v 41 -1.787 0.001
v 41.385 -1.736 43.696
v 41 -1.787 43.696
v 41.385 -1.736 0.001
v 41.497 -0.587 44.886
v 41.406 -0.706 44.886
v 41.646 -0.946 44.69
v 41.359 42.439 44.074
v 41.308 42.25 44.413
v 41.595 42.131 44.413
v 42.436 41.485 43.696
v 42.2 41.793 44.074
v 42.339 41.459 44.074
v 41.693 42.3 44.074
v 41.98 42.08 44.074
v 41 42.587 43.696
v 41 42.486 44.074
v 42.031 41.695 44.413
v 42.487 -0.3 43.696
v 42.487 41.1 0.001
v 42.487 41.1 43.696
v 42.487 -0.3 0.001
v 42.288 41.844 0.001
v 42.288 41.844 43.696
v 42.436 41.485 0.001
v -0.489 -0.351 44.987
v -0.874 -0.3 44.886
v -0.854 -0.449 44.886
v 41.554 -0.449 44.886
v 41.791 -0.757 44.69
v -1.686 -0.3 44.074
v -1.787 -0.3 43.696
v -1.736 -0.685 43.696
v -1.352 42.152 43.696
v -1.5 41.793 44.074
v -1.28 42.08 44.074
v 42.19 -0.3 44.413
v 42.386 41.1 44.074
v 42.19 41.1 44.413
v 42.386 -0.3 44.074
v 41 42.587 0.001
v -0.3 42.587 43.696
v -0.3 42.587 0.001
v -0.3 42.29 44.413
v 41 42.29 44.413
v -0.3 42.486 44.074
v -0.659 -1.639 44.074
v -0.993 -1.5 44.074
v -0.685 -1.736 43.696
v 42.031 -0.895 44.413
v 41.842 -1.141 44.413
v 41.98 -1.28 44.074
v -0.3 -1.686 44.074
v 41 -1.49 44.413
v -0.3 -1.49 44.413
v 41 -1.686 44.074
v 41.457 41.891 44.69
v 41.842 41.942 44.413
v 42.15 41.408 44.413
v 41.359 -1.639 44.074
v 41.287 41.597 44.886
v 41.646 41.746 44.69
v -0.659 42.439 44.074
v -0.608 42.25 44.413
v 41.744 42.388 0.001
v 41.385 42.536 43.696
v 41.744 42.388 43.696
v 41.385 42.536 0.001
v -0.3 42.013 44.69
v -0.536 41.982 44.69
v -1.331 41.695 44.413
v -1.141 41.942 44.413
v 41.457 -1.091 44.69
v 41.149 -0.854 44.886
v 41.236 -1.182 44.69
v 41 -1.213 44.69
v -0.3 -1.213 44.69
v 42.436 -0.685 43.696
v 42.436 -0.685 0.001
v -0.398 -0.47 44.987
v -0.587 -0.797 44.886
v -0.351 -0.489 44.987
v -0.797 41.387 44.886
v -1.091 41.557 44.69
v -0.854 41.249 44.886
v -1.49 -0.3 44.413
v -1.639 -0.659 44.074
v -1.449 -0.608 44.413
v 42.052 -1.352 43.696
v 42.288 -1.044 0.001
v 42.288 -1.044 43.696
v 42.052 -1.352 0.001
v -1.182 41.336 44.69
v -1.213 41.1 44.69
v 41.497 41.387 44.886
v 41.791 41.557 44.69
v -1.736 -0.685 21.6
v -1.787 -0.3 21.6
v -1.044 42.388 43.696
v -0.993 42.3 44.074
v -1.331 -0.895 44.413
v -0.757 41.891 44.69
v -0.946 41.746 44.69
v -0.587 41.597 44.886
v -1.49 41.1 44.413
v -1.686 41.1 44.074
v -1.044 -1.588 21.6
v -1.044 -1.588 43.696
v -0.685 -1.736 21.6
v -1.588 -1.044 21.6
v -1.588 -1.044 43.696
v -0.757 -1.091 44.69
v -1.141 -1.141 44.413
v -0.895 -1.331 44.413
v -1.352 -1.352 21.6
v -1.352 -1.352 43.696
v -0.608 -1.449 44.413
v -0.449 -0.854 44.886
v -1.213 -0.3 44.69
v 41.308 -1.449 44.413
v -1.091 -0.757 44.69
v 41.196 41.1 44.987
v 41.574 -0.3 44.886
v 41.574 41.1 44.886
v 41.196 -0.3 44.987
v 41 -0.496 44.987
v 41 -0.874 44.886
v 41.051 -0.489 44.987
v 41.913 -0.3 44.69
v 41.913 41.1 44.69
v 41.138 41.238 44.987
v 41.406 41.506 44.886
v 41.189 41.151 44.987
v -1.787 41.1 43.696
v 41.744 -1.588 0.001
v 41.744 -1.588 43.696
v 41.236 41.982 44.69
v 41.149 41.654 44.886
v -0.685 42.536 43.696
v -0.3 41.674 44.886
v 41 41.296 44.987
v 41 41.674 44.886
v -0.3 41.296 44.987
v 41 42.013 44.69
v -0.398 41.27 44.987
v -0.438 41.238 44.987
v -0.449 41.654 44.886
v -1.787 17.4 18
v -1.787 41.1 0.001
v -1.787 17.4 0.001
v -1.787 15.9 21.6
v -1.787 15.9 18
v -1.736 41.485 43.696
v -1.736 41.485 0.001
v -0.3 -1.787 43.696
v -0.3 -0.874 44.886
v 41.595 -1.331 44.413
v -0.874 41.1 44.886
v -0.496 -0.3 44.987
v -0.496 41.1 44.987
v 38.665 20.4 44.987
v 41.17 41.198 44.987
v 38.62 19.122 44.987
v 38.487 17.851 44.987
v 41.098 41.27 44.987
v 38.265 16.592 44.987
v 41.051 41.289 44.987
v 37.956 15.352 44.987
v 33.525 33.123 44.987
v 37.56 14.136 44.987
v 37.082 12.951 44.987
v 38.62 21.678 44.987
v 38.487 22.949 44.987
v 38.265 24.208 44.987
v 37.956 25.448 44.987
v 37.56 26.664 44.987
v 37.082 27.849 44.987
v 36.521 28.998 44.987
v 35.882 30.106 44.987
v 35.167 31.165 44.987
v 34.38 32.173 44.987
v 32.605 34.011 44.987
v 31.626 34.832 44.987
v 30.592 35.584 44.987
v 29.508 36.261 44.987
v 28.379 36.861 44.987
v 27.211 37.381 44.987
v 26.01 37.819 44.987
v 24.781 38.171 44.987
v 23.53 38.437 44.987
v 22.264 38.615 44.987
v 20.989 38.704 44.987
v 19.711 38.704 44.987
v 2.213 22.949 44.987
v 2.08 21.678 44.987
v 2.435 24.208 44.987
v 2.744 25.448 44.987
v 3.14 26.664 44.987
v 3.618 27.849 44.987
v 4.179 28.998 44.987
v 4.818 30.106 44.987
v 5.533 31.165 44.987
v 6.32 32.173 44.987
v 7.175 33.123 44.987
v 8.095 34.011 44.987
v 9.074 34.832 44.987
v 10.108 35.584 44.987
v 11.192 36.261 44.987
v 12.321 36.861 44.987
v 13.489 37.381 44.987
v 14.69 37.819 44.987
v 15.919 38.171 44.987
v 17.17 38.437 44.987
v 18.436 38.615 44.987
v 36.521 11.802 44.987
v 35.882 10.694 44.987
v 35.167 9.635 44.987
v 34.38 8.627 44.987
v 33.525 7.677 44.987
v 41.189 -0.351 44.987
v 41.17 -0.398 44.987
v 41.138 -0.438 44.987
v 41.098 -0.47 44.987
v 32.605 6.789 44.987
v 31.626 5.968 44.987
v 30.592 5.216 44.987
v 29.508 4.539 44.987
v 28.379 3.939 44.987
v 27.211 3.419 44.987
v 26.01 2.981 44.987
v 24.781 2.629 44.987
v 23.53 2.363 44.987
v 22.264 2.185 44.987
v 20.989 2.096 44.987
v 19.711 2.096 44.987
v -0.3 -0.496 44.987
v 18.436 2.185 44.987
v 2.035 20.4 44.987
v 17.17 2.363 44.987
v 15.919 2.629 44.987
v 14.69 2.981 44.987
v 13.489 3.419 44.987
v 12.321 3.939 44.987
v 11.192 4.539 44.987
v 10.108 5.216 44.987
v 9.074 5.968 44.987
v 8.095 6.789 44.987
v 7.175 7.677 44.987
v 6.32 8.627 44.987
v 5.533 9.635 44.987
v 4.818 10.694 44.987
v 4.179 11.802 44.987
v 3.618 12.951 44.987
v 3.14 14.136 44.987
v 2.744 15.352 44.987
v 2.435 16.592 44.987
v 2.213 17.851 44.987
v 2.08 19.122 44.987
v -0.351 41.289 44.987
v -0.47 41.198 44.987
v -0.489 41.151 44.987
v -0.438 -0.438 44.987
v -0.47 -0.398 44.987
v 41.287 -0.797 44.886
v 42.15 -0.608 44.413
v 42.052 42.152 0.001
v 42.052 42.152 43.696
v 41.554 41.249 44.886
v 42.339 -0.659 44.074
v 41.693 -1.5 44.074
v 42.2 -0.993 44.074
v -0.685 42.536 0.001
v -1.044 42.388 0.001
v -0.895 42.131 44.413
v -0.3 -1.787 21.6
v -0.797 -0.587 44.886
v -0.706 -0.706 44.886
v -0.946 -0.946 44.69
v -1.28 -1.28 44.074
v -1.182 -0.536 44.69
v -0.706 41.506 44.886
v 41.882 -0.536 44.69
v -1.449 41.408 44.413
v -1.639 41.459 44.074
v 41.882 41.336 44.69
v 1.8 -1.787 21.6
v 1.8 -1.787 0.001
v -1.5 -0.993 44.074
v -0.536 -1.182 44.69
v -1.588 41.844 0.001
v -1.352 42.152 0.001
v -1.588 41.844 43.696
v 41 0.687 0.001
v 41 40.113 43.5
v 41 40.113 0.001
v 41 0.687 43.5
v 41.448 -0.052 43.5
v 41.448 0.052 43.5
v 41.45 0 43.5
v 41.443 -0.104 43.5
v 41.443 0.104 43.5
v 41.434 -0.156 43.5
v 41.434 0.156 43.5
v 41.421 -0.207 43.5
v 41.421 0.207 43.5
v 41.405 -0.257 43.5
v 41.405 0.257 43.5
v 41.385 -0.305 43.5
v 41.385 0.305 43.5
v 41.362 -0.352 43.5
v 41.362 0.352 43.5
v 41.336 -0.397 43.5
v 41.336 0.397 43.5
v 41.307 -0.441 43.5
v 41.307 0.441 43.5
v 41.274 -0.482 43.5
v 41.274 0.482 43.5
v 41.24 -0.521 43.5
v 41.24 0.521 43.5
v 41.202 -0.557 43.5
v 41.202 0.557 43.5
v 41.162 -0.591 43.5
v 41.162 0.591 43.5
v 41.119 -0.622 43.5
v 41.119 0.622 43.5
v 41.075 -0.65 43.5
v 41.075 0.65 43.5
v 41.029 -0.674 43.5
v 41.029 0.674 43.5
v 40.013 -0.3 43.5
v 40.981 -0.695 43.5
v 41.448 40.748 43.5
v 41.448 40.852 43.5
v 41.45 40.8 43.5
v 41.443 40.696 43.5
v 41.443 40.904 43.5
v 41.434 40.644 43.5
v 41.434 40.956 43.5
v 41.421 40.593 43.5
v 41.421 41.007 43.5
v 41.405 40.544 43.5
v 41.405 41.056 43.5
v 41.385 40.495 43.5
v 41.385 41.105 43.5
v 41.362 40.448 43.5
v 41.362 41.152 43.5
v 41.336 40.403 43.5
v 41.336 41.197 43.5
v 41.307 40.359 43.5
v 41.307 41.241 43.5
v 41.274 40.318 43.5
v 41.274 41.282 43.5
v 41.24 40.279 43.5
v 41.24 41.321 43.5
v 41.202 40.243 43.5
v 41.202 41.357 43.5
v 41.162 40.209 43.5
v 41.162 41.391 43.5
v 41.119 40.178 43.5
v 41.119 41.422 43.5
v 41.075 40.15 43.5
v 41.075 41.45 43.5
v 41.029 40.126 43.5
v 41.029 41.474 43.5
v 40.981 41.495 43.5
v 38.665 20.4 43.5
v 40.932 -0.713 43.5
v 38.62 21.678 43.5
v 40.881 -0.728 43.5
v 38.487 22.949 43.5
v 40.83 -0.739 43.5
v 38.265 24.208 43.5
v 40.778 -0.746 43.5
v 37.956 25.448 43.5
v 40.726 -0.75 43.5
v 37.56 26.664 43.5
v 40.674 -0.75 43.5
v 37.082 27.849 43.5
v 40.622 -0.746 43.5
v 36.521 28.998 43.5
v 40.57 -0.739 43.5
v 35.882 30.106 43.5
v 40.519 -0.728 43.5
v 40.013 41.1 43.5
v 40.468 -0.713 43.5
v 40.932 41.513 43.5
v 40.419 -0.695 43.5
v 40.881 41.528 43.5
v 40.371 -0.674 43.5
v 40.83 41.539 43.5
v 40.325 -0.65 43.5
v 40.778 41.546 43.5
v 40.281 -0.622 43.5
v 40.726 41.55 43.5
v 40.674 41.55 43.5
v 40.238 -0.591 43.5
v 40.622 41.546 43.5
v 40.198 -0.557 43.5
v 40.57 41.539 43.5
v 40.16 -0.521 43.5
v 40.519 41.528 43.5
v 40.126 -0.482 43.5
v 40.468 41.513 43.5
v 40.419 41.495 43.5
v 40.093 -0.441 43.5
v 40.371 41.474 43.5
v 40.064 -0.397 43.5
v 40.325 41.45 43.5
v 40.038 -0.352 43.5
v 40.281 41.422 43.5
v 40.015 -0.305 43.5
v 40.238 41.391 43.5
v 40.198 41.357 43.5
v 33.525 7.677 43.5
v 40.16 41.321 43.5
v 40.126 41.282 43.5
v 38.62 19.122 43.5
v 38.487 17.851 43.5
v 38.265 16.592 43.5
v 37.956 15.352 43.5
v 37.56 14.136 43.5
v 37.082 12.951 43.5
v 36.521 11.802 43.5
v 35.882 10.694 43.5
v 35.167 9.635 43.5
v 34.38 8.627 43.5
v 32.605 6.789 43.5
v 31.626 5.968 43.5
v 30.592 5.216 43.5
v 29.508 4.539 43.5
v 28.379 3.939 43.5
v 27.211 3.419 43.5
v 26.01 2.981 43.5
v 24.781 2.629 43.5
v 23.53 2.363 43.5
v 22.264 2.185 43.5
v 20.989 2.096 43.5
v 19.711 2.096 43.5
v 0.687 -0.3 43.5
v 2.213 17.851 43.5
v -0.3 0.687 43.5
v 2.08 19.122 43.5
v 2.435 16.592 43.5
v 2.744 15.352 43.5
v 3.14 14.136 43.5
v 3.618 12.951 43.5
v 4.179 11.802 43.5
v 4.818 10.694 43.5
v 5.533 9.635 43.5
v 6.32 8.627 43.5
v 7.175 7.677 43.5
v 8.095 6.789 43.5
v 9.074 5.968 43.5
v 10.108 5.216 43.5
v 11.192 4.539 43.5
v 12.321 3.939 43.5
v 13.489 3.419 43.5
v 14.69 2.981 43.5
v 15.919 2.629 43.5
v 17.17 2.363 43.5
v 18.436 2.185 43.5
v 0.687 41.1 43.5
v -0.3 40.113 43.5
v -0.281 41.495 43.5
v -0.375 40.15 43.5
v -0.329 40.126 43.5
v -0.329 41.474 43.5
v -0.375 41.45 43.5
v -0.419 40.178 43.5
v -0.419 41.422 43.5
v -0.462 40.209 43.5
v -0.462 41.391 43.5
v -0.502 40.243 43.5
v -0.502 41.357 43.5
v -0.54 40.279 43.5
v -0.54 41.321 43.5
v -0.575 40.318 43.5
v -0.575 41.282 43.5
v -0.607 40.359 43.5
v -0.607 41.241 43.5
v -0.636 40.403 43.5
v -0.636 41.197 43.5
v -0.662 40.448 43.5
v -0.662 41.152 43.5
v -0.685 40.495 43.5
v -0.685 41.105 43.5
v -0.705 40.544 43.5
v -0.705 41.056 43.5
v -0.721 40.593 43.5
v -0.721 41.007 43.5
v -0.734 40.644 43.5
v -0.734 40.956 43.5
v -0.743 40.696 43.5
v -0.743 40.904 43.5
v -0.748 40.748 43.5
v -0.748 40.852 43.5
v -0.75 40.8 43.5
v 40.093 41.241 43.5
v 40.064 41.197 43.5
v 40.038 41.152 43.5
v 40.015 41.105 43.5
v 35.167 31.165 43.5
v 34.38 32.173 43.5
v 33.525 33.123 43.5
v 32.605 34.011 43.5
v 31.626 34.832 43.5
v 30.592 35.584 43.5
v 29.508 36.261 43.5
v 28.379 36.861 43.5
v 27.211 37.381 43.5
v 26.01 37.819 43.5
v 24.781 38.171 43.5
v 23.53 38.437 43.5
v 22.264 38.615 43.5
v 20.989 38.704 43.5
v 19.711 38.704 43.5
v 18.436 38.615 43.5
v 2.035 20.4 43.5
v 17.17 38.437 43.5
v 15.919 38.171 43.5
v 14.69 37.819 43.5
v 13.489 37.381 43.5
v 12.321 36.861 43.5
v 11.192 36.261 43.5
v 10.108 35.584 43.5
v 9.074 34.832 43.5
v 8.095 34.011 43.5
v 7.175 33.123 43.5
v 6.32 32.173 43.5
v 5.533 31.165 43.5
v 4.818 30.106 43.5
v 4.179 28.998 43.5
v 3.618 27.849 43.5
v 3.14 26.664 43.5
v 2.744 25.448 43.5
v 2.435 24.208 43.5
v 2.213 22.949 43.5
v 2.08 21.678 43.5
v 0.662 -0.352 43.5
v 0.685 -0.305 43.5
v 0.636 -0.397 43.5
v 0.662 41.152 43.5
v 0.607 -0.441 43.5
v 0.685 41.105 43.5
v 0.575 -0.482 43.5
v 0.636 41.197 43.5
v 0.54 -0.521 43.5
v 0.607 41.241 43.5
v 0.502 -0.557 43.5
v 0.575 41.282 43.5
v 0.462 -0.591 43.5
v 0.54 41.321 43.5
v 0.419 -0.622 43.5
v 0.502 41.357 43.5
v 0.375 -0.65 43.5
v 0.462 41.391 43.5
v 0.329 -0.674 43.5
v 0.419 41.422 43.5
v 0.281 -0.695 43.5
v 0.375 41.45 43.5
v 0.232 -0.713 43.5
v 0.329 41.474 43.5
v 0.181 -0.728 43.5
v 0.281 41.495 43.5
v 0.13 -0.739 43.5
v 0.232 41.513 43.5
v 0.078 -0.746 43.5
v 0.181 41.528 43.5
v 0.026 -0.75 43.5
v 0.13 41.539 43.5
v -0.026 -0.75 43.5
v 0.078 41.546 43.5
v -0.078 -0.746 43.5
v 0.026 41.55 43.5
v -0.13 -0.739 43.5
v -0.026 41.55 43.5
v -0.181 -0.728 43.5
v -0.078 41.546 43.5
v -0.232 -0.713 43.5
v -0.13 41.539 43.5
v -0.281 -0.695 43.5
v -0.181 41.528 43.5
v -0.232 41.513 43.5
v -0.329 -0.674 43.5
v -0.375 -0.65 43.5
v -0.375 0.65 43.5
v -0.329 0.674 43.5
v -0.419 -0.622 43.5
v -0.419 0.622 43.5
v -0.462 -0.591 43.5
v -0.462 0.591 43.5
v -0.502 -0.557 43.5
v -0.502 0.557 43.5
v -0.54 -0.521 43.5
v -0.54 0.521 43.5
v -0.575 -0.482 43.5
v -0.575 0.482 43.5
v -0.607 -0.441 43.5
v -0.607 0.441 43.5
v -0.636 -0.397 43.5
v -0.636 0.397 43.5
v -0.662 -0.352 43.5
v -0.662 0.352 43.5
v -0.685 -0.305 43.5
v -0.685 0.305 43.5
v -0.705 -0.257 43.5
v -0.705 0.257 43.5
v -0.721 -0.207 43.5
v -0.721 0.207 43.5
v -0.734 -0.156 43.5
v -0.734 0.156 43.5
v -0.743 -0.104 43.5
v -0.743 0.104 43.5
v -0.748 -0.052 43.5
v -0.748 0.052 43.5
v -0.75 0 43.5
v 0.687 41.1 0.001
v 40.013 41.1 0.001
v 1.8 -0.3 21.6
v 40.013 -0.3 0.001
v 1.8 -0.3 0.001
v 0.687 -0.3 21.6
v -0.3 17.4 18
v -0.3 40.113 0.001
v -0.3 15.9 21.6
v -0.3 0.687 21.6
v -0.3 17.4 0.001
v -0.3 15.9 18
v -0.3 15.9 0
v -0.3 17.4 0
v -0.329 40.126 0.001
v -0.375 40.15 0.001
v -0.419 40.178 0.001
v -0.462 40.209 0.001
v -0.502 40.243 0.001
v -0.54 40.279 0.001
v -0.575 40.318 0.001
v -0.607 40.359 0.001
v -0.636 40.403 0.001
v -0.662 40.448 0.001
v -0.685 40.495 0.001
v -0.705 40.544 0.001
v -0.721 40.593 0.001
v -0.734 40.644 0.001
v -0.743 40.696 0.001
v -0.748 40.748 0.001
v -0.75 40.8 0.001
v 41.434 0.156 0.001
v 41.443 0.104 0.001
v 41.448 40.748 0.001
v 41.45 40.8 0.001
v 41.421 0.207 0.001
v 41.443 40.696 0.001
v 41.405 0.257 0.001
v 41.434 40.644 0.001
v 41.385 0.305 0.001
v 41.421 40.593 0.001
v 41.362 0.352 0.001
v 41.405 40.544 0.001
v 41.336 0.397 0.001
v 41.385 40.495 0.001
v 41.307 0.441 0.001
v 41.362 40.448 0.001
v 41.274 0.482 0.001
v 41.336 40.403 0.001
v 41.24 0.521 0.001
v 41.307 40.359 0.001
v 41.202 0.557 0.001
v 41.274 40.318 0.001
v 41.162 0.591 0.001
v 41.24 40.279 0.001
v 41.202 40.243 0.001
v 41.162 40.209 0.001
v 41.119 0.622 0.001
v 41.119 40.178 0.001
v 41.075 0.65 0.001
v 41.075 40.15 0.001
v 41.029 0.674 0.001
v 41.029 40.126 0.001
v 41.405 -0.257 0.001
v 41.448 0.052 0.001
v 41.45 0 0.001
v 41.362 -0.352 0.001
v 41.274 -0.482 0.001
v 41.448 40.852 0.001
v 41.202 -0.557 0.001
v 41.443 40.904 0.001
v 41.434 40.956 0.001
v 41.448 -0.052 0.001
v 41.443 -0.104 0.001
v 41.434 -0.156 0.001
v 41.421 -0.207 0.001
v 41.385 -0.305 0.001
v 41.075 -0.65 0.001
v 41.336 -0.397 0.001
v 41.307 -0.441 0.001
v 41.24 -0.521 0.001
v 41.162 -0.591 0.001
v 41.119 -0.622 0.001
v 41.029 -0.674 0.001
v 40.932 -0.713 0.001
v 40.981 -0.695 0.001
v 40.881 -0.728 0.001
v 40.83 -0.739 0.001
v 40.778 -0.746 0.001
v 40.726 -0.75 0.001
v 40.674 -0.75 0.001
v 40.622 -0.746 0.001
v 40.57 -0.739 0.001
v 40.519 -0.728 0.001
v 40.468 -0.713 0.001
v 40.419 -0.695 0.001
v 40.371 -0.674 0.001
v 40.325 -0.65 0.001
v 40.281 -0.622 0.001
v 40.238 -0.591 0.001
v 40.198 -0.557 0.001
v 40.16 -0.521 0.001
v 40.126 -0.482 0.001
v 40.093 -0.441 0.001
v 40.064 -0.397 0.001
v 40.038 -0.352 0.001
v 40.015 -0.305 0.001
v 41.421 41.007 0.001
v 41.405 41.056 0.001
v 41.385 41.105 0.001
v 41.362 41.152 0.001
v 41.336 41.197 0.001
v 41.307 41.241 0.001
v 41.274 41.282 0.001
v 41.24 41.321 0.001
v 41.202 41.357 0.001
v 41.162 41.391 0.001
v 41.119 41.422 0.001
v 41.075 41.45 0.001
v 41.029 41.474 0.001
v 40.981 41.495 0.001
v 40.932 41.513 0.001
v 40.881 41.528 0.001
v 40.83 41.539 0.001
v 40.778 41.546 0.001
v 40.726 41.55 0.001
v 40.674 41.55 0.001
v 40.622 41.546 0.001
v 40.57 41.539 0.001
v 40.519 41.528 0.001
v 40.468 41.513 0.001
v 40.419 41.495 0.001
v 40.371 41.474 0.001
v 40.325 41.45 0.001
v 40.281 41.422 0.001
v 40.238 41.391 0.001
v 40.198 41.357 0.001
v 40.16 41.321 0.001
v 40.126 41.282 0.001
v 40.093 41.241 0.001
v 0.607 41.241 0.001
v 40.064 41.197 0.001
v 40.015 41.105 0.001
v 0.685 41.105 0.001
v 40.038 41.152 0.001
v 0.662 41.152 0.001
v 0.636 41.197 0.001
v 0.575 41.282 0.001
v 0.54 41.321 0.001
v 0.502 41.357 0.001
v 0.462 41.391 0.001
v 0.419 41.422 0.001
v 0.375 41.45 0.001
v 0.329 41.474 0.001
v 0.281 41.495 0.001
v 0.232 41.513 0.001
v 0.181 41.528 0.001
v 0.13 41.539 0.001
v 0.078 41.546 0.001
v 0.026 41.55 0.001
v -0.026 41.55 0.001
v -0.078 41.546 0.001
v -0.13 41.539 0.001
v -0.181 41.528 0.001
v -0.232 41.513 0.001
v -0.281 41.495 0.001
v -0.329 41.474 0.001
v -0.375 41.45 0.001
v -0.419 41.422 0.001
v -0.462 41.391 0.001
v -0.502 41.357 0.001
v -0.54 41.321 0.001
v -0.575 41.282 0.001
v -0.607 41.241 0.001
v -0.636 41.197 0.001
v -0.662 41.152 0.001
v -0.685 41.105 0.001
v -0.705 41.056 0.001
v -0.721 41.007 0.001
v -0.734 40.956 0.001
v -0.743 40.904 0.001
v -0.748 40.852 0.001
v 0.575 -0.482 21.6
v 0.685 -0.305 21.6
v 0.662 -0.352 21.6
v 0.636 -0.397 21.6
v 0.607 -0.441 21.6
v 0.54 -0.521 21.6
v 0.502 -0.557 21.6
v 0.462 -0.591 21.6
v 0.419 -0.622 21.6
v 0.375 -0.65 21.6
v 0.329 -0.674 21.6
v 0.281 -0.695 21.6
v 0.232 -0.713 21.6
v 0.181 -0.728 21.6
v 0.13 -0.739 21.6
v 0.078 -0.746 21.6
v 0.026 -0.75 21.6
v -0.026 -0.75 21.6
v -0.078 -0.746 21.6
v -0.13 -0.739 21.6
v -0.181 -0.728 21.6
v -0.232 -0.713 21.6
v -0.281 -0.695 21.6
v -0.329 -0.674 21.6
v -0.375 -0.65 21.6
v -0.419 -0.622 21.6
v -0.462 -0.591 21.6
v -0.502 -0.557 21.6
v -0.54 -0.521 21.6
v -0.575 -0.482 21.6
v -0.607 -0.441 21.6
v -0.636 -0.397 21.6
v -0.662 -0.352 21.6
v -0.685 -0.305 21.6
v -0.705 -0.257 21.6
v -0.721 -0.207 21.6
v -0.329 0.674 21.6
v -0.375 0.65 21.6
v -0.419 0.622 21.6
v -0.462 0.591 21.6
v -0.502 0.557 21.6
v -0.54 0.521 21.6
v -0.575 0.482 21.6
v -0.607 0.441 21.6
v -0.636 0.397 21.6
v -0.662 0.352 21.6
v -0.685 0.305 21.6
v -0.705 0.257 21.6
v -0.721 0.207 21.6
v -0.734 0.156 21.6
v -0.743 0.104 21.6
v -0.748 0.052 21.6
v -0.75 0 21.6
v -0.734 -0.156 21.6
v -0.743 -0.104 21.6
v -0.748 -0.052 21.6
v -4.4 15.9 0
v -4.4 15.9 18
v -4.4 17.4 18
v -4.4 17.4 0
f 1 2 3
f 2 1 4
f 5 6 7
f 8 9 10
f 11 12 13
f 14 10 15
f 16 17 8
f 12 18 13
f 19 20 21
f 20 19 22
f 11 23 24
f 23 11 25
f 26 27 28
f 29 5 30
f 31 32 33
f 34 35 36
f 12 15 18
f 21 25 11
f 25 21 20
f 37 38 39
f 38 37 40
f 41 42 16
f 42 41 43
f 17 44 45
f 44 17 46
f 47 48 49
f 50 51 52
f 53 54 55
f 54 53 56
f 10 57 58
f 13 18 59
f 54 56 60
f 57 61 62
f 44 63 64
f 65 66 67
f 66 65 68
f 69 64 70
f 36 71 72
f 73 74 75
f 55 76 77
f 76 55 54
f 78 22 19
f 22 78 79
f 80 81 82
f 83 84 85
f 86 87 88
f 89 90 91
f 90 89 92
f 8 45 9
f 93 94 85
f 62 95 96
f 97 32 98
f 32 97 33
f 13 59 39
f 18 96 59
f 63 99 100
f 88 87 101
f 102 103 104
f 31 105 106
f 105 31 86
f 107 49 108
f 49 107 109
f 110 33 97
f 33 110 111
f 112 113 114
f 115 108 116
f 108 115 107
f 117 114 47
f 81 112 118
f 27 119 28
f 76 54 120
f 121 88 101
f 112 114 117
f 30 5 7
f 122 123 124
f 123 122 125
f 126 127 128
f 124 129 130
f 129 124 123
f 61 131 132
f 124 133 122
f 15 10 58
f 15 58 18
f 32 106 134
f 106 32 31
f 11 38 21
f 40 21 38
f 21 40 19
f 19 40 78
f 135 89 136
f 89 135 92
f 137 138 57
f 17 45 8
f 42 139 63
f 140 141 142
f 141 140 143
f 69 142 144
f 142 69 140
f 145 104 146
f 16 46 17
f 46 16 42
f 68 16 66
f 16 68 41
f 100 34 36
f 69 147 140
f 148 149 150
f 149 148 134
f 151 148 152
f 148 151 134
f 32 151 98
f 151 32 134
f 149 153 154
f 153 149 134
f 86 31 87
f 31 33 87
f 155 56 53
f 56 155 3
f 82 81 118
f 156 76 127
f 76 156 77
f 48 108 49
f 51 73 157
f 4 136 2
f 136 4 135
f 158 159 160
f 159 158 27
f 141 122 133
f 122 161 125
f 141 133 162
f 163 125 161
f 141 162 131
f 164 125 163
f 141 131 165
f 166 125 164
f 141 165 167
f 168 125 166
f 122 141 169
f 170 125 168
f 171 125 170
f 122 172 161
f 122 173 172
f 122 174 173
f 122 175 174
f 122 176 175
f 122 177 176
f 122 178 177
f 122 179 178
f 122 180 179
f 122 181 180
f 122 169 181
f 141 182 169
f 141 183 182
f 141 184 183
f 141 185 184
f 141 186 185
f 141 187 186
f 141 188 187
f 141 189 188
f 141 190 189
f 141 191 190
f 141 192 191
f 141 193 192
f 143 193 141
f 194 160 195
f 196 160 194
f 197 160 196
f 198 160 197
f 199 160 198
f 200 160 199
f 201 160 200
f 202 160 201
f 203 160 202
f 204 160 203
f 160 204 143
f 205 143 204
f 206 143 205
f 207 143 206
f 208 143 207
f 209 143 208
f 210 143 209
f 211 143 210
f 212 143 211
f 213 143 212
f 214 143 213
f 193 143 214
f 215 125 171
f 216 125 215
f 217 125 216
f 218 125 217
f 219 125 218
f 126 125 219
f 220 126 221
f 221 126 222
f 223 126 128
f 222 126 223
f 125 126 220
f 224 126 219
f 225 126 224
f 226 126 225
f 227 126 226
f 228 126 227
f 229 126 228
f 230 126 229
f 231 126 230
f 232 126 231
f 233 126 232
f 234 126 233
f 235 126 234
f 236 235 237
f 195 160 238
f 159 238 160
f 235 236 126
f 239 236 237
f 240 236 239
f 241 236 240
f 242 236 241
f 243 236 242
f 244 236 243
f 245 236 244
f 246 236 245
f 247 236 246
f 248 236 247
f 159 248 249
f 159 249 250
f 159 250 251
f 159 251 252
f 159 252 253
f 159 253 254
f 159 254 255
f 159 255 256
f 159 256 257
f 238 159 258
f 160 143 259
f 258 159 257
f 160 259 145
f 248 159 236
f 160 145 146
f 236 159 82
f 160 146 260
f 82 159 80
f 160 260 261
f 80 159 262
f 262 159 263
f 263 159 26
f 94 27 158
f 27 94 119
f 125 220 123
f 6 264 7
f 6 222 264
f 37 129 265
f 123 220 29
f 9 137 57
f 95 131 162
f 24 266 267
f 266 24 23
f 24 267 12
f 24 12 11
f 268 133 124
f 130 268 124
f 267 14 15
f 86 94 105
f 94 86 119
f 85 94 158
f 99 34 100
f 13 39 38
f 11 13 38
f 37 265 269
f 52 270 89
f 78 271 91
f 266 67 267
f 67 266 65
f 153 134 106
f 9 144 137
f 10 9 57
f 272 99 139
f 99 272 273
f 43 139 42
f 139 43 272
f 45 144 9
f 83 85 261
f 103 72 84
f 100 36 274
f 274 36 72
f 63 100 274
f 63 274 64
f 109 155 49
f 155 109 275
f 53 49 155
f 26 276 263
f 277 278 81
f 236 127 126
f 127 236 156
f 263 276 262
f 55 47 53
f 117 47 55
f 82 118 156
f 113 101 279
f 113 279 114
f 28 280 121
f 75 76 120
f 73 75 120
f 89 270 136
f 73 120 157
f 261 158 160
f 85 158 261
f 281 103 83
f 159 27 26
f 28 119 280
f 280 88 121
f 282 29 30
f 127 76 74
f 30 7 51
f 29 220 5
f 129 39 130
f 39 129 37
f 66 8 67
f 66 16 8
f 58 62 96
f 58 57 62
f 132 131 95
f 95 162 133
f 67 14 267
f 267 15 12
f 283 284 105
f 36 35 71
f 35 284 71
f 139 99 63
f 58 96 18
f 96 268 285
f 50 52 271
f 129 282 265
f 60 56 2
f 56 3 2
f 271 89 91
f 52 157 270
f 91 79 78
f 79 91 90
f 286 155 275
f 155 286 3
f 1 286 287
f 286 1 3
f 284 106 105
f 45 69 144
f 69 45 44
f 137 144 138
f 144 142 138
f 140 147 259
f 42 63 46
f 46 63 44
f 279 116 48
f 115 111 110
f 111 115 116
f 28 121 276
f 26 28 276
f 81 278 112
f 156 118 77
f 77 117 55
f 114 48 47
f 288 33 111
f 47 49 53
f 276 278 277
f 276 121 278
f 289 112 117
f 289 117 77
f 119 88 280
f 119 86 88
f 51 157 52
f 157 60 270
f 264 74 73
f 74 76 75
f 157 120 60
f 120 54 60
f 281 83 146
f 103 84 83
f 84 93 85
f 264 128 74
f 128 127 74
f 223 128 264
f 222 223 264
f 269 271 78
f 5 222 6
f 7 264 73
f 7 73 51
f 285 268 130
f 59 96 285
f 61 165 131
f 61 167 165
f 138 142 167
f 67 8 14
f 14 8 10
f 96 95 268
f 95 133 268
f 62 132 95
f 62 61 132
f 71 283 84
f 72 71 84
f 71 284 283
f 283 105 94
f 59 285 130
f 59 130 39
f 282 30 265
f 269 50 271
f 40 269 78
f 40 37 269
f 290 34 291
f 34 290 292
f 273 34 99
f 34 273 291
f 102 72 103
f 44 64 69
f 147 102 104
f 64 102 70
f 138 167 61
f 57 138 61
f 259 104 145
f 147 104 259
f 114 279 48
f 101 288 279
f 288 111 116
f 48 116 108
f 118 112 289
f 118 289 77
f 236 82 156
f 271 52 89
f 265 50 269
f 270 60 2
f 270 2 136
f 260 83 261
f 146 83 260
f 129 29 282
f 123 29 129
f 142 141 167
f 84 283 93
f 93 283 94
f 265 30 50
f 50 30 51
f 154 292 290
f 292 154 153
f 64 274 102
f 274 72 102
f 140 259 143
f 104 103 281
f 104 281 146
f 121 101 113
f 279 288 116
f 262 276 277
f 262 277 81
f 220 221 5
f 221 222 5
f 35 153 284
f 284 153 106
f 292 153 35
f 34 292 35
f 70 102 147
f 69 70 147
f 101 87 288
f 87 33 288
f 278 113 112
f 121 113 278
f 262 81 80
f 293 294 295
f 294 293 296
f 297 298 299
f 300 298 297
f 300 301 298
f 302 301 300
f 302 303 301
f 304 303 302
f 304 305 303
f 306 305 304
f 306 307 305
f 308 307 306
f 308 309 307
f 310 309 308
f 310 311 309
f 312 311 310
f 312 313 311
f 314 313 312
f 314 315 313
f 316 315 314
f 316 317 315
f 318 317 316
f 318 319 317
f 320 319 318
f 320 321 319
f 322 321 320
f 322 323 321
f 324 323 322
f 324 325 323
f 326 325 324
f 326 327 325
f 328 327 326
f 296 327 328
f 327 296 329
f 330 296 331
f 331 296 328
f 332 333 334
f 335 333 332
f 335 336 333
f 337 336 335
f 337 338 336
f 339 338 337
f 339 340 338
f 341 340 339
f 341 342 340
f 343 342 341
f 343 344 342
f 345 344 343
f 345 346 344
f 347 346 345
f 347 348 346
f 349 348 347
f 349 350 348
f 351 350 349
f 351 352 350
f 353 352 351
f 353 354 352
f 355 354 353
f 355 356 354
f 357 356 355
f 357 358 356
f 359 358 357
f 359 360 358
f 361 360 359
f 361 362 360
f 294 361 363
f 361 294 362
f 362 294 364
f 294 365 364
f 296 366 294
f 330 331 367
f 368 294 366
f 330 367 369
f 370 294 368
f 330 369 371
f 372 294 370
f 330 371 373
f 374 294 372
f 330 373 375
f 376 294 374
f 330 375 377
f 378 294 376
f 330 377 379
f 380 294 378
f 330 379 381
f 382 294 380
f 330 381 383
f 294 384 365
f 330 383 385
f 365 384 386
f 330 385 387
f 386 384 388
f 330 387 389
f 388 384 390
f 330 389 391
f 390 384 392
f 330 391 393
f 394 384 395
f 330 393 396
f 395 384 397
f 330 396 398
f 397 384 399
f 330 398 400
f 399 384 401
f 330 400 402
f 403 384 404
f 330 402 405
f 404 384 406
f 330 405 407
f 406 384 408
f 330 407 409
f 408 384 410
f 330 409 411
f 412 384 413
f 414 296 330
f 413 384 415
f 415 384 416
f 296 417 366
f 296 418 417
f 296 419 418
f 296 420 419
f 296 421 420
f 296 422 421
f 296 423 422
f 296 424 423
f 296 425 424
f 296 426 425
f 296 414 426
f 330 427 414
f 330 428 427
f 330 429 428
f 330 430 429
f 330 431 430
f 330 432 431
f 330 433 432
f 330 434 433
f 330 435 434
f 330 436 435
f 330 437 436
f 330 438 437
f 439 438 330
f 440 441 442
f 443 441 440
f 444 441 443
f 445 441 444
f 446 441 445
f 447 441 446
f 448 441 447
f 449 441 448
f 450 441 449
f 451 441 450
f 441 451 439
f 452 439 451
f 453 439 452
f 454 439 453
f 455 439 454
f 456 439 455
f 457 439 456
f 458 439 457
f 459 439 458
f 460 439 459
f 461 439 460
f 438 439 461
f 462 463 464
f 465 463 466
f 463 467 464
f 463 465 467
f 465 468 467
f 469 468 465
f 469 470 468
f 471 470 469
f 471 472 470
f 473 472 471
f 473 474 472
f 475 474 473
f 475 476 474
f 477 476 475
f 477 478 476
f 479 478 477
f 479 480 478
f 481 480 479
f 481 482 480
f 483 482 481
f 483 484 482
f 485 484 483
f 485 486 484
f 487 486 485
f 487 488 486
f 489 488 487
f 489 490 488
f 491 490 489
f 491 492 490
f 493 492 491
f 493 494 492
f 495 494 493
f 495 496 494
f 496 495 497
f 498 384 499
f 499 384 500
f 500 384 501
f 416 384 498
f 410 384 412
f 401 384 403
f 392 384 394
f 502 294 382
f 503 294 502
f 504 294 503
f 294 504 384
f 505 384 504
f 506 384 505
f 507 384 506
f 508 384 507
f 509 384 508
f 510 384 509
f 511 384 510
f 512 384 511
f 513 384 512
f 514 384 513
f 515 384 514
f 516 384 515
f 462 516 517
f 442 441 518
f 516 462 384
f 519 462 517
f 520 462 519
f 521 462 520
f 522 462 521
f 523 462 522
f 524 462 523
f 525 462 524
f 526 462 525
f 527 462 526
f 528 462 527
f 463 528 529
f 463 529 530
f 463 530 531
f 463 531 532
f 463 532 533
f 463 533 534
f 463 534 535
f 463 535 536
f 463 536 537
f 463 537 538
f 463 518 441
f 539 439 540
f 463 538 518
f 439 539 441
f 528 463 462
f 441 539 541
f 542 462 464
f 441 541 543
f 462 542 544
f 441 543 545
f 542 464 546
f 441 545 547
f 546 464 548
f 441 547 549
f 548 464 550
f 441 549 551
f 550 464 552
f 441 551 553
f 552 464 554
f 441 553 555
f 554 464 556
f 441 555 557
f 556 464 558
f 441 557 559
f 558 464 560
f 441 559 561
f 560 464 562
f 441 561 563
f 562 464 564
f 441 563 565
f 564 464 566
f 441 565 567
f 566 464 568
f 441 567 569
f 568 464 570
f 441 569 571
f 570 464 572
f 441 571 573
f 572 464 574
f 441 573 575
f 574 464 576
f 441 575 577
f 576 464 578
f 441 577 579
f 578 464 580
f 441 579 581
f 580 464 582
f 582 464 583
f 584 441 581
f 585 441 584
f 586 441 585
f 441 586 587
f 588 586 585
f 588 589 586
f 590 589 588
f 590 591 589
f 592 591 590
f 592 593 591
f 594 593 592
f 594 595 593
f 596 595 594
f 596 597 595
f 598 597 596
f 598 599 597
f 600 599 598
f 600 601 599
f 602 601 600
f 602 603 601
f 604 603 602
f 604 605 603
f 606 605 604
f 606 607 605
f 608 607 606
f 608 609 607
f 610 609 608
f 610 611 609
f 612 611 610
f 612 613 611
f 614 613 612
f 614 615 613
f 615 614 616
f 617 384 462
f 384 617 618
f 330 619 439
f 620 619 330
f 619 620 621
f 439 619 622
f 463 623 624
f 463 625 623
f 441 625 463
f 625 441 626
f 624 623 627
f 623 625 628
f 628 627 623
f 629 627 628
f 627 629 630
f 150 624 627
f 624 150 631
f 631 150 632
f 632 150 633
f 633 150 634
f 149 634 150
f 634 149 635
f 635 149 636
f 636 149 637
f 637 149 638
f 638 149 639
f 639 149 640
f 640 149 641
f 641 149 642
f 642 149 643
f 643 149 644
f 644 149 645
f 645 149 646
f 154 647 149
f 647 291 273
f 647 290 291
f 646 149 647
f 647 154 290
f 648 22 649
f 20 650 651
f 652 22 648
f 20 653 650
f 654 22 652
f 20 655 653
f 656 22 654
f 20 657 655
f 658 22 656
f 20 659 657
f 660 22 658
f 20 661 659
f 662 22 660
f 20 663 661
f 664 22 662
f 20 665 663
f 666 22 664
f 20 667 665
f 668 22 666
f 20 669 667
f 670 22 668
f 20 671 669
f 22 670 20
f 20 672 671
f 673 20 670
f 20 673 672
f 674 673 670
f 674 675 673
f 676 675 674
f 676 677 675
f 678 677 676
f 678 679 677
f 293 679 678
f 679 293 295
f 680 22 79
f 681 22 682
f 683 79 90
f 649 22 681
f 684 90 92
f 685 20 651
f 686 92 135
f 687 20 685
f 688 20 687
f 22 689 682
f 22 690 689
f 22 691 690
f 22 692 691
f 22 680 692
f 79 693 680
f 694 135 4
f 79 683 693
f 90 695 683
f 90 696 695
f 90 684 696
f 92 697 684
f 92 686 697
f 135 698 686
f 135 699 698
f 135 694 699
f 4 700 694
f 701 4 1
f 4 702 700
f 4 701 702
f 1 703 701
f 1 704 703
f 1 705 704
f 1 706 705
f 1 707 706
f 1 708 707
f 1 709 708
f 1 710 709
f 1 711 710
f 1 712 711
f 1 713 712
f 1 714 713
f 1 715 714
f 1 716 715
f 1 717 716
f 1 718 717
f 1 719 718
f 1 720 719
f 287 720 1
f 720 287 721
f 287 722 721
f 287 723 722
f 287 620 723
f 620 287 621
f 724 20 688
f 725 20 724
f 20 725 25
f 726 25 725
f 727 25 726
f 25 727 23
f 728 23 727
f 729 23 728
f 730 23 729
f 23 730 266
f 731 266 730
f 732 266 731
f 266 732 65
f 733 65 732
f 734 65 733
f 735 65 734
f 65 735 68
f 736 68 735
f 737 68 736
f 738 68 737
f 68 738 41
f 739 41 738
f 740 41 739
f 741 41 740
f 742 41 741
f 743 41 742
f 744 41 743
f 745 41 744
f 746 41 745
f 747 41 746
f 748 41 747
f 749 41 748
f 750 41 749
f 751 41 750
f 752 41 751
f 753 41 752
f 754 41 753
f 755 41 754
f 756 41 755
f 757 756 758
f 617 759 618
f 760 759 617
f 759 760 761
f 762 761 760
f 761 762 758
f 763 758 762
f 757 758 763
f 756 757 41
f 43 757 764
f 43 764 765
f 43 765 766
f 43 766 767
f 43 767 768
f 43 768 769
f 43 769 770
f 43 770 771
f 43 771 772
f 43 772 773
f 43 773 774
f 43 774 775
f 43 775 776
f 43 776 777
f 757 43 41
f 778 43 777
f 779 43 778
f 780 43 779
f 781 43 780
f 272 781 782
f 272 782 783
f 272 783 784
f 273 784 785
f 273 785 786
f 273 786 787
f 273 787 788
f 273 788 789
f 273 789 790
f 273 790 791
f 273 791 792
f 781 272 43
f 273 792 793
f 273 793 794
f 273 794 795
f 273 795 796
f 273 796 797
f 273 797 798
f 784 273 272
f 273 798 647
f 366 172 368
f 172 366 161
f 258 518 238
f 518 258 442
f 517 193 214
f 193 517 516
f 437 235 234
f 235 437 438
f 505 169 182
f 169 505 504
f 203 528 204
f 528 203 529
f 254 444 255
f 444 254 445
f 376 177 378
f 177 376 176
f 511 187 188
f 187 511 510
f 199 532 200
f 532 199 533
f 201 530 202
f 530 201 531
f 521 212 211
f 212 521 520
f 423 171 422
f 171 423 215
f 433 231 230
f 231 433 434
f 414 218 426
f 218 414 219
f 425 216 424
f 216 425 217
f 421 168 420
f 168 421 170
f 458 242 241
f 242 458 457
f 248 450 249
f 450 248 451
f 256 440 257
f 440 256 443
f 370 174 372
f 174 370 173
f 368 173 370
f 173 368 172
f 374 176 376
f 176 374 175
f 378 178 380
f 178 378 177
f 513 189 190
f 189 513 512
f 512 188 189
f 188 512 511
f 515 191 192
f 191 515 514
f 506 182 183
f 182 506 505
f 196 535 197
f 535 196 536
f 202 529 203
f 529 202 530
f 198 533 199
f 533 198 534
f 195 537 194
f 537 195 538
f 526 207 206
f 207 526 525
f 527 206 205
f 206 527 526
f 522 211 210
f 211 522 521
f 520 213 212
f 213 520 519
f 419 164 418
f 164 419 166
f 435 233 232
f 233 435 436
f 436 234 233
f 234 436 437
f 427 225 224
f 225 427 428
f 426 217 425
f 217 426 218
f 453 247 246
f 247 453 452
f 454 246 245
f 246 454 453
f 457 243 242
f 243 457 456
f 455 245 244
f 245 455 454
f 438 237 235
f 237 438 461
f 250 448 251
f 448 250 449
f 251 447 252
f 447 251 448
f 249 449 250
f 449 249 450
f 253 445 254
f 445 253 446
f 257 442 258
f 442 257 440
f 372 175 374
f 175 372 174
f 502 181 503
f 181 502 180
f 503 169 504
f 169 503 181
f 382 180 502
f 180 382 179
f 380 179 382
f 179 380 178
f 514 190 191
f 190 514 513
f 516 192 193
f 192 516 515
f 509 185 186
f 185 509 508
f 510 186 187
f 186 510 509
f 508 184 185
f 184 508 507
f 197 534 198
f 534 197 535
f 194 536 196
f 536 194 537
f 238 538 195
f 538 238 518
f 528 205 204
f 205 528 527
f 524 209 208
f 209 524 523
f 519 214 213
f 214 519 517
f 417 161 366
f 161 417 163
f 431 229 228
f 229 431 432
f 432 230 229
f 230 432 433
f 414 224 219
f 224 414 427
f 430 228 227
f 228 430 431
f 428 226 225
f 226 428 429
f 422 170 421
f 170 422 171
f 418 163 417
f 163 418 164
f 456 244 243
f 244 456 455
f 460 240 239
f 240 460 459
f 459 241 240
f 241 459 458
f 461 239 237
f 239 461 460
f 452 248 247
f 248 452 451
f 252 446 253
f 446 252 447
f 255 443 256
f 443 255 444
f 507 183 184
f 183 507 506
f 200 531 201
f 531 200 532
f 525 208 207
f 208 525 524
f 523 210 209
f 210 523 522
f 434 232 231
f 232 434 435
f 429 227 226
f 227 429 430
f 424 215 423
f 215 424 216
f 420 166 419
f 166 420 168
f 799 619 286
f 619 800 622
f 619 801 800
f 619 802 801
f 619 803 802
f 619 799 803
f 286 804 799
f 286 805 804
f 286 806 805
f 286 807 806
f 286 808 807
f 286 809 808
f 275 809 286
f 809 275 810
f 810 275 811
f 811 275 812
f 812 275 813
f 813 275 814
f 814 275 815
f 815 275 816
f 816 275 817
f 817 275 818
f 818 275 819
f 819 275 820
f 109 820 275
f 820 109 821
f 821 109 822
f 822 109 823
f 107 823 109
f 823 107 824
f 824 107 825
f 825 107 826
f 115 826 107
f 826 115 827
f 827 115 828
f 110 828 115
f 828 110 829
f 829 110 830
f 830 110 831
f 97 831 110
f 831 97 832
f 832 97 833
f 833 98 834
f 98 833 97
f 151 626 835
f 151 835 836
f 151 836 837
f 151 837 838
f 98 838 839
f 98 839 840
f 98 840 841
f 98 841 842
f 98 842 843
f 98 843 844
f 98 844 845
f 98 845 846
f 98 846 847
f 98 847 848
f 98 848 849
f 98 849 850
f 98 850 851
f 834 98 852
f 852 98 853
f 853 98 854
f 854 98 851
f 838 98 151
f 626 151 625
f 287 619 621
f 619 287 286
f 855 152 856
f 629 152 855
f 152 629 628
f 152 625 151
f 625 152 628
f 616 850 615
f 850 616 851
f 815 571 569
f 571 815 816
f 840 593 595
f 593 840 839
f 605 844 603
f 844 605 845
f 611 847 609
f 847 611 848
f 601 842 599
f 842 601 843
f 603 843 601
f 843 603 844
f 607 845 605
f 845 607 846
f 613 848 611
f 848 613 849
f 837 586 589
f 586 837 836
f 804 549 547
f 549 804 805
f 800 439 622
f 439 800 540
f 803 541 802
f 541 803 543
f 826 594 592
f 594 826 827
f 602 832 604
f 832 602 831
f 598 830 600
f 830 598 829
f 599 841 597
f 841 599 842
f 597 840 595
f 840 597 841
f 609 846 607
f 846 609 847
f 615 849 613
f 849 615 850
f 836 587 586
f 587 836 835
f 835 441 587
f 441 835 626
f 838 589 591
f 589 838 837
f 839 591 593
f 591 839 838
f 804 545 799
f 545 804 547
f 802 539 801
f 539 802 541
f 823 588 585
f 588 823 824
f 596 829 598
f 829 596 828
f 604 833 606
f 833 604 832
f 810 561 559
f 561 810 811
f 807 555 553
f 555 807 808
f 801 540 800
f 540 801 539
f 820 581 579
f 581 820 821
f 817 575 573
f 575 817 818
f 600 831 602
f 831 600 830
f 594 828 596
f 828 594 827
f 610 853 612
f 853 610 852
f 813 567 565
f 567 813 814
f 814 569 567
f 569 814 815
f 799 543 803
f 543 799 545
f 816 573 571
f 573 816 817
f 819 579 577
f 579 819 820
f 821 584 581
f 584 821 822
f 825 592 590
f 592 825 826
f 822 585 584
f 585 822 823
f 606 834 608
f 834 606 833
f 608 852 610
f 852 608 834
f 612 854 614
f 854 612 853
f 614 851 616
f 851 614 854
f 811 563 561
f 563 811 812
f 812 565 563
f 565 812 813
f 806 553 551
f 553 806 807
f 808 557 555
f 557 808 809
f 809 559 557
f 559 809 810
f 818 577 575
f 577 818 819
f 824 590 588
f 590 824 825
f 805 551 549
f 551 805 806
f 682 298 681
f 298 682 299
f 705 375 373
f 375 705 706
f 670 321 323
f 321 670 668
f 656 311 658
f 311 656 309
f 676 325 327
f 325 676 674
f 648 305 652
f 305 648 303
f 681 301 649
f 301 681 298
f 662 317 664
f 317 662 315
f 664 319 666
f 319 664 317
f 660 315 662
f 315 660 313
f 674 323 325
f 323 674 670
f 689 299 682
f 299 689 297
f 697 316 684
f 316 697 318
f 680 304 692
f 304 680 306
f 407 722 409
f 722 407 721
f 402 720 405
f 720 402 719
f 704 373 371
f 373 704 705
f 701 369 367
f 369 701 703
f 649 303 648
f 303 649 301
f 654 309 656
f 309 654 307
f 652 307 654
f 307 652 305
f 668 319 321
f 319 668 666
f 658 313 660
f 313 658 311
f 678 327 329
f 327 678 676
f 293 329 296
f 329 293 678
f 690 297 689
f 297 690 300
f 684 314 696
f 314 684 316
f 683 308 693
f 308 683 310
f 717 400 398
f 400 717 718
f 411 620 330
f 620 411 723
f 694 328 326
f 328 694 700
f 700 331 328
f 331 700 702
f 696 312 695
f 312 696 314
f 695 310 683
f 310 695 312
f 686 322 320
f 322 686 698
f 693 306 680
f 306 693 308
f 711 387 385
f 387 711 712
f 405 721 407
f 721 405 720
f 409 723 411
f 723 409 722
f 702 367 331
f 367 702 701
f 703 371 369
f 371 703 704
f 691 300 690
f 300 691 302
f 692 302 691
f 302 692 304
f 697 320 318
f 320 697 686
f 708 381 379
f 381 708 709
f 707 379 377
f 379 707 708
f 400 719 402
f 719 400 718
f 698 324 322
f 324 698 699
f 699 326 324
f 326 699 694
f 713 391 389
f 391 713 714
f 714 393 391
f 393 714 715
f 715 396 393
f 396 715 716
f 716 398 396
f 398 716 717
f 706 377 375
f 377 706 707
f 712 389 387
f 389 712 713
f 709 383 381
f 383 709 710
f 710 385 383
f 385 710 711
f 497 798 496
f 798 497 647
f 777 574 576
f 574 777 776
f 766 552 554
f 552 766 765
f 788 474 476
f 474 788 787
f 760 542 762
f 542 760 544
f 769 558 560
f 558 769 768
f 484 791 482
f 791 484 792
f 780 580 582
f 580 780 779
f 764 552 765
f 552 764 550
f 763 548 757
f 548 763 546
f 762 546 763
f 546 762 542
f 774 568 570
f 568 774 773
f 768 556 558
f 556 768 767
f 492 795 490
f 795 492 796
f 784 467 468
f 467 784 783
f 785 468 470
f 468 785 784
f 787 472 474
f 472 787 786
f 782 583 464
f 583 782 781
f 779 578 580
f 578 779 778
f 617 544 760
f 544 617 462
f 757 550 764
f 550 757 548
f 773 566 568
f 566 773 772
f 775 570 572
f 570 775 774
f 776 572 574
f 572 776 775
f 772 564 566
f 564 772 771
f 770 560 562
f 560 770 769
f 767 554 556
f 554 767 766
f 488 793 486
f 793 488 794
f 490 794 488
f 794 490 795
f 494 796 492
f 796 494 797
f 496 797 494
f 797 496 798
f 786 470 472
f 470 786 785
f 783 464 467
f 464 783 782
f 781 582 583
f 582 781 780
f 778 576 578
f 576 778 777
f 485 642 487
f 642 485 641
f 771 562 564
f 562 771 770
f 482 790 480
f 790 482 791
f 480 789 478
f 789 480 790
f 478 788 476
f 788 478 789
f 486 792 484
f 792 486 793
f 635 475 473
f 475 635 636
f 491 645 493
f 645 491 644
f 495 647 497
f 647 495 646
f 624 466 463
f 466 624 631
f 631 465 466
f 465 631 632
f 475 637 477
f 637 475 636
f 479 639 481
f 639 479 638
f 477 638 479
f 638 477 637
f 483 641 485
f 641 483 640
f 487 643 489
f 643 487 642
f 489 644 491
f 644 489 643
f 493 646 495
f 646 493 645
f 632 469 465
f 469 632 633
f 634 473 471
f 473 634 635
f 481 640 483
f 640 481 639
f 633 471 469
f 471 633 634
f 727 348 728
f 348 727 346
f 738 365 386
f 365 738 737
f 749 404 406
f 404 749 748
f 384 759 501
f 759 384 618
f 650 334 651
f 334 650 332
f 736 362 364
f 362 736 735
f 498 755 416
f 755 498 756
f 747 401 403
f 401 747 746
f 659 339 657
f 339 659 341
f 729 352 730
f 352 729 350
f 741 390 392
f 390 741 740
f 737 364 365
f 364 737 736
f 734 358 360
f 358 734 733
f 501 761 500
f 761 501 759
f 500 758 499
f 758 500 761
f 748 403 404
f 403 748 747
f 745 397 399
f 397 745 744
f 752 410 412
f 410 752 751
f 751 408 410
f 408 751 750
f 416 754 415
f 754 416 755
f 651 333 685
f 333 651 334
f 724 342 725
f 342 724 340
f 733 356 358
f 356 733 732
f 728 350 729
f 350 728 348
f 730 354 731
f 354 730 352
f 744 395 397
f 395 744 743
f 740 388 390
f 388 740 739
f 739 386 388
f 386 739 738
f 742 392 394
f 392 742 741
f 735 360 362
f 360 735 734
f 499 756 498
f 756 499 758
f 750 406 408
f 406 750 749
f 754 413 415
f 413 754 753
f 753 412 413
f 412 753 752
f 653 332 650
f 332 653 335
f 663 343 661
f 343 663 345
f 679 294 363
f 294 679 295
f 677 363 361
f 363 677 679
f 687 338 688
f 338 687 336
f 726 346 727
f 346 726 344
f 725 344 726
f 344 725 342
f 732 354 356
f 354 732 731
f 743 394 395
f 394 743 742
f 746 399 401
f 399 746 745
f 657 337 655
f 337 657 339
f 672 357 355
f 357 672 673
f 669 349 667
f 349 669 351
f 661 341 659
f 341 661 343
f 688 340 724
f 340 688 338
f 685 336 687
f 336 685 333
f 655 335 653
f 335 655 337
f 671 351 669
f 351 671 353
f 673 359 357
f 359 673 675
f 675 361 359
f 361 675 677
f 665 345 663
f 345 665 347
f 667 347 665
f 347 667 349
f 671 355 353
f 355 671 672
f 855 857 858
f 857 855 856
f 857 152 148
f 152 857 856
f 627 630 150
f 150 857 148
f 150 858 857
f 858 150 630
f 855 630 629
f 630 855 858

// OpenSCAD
epsilon = 0.001;

wall_thickness = 1.5;
padding_thickness = .3;
top = [40.7, 40.8, 43.2];
slop = wall_thickness + padding_thickness;

case_cut_y = 19.5;
case_cut_z = 18;
case_thickness = 2.6;

module pad_cube(){
    pad_coords = [ for (i = [1: 3]) 2*padding_thickness ];
    cube(pad_coords, center=true);
}

module corner_points(start_point, end_point){
    corners = [ for (x = [start_point.x, end_point.x],
                     y = [start_point.y, end_point.y],
                     z = [start_point.z, end_point.z])
                     [x, y, z]];
    for (corner = corners) translate(corner) children(0);
}

module padding_model(){
    hull(){ corner_points([0, 0, 0], top) pad_cube(); }
}

module full_box_model(){
    hull(){corner_points([-padding_thickness, -padding_thickness, -padding_thickness], [top.x+padding_thickness, top.y+padding_thickness, top.z+padding_thickness]) sphere(wall_thickness);}
}

$fs = 0.4; // for final renderering. looks great but makes the model take more than 10 seconds to render

//mirror([0,1,0])  // uncomment for righty (left arm) tefilin
difference(){
    full_box_model();                                                     // create outer dimentions
    padding_model();                                                      // cut out interior

    translate([-slop, -slop,-slop+epsilon])
    cube([top.x+2*slop, top.y+2*slop, slop]);                            // trim off bottom

    translate([top.x/2, top.y/2, top.z])
    cylinder(slop, d=min(top.x, top.y)*.9, $fn = 90);                    // hole in the top

    translate([-slop, -slop, 0])
    cube([slop*2, case_cut_y-slop, top.z*.5]);                           // side cutout

    translate([0, 0, 0])
    cylinder(top.z+padding_thickness, r=wall_thickness/2, $fn = 90);
    translate([top.x, 0, 0])
    cylinder(top.z+padding_thickness, r=wall_thickness/2, $fn = 90);                       // spaces around the corners to not rub them down
    translate([0, top.y, 0])
    cylinder(top.z+padding_thickness, r=wall_thickness/2, $fn = 90);
    translate([top.x, top.y, 0])
    cylinder(top.z+padding_thickness, r=wall_thickness/2, $fn = 90);
}
translate([-slop-case_thickness, case_cut_y-slop*2, 0])
cube([case_thickness+wall_thickness, wall_thickness, case_cut_z]);       // knot holder wall thing
